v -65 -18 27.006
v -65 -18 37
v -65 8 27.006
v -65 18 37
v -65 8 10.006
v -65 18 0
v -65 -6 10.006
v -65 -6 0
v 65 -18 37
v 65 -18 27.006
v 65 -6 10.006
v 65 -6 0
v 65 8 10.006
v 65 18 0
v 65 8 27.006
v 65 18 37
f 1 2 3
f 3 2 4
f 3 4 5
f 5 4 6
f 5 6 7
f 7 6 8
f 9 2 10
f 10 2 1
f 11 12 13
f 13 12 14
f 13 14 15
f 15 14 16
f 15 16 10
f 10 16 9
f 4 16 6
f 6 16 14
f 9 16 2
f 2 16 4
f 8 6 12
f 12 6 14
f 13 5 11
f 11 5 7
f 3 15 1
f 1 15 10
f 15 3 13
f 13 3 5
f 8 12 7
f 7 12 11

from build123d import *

# Parameters (mm, degrees)
SKETCH_2_W          = 130
SKETCH_2_H          = 36
EXTRUDE_1_DEPTH     = 37
CUT_EXTRUDE_START   = -18
SKETCH_4_W          = 130
SKETCH_4_H          = 17
CUT_EXTRUDE_1_DEPTH = 26
SKETCH_5_W          = 130
SKETCH_5_H          = 12
CUT_EXTRUDE_2_DEPTH = 12


with BuildPart() as part:
    # 스케치2 → 보스-돌출1 (new body)
    with BuildSketch(Plane.XY):
        Rectangle(SKETCH_2_W, SKETCH_2_H)
    extrude(amount=EXTRUDE_1_DEPTH)

    # 스케치4 → 컷-돌출1 (cut)
    with BuildSketch(Plane(origin=(0, 0, 0), x_dir=(1, 0, 0), z_dir=(0, 1, 0)).offset(CUT_EXTRUDE_START)):
        with Locations((0, -18.50644362)):
            Rectangle(SKETCH_4_W, SKETCH_4_H)
    extrude(amount=CUT_EXTRUDE_1_DEPTH, mode=Mode.SUBTRACT)

    # 스케치5 → 컷-돌출2 (cut)
    with BuildSketch(Plane(origin=(0, 0, 0), x_dir=(1, 0, 0), z_dir=(0, 1, 0)).offset(CUT_EXTRUDE_START)):
        with Locations((0, -6)):
            Rectangle(SKETCH_5_W, SKETCH_5_H)
    extrude(amount=CUT_EXTRUDE_2_DEPTH, mode=Mode.SUBTRACT)


solid = part.part
